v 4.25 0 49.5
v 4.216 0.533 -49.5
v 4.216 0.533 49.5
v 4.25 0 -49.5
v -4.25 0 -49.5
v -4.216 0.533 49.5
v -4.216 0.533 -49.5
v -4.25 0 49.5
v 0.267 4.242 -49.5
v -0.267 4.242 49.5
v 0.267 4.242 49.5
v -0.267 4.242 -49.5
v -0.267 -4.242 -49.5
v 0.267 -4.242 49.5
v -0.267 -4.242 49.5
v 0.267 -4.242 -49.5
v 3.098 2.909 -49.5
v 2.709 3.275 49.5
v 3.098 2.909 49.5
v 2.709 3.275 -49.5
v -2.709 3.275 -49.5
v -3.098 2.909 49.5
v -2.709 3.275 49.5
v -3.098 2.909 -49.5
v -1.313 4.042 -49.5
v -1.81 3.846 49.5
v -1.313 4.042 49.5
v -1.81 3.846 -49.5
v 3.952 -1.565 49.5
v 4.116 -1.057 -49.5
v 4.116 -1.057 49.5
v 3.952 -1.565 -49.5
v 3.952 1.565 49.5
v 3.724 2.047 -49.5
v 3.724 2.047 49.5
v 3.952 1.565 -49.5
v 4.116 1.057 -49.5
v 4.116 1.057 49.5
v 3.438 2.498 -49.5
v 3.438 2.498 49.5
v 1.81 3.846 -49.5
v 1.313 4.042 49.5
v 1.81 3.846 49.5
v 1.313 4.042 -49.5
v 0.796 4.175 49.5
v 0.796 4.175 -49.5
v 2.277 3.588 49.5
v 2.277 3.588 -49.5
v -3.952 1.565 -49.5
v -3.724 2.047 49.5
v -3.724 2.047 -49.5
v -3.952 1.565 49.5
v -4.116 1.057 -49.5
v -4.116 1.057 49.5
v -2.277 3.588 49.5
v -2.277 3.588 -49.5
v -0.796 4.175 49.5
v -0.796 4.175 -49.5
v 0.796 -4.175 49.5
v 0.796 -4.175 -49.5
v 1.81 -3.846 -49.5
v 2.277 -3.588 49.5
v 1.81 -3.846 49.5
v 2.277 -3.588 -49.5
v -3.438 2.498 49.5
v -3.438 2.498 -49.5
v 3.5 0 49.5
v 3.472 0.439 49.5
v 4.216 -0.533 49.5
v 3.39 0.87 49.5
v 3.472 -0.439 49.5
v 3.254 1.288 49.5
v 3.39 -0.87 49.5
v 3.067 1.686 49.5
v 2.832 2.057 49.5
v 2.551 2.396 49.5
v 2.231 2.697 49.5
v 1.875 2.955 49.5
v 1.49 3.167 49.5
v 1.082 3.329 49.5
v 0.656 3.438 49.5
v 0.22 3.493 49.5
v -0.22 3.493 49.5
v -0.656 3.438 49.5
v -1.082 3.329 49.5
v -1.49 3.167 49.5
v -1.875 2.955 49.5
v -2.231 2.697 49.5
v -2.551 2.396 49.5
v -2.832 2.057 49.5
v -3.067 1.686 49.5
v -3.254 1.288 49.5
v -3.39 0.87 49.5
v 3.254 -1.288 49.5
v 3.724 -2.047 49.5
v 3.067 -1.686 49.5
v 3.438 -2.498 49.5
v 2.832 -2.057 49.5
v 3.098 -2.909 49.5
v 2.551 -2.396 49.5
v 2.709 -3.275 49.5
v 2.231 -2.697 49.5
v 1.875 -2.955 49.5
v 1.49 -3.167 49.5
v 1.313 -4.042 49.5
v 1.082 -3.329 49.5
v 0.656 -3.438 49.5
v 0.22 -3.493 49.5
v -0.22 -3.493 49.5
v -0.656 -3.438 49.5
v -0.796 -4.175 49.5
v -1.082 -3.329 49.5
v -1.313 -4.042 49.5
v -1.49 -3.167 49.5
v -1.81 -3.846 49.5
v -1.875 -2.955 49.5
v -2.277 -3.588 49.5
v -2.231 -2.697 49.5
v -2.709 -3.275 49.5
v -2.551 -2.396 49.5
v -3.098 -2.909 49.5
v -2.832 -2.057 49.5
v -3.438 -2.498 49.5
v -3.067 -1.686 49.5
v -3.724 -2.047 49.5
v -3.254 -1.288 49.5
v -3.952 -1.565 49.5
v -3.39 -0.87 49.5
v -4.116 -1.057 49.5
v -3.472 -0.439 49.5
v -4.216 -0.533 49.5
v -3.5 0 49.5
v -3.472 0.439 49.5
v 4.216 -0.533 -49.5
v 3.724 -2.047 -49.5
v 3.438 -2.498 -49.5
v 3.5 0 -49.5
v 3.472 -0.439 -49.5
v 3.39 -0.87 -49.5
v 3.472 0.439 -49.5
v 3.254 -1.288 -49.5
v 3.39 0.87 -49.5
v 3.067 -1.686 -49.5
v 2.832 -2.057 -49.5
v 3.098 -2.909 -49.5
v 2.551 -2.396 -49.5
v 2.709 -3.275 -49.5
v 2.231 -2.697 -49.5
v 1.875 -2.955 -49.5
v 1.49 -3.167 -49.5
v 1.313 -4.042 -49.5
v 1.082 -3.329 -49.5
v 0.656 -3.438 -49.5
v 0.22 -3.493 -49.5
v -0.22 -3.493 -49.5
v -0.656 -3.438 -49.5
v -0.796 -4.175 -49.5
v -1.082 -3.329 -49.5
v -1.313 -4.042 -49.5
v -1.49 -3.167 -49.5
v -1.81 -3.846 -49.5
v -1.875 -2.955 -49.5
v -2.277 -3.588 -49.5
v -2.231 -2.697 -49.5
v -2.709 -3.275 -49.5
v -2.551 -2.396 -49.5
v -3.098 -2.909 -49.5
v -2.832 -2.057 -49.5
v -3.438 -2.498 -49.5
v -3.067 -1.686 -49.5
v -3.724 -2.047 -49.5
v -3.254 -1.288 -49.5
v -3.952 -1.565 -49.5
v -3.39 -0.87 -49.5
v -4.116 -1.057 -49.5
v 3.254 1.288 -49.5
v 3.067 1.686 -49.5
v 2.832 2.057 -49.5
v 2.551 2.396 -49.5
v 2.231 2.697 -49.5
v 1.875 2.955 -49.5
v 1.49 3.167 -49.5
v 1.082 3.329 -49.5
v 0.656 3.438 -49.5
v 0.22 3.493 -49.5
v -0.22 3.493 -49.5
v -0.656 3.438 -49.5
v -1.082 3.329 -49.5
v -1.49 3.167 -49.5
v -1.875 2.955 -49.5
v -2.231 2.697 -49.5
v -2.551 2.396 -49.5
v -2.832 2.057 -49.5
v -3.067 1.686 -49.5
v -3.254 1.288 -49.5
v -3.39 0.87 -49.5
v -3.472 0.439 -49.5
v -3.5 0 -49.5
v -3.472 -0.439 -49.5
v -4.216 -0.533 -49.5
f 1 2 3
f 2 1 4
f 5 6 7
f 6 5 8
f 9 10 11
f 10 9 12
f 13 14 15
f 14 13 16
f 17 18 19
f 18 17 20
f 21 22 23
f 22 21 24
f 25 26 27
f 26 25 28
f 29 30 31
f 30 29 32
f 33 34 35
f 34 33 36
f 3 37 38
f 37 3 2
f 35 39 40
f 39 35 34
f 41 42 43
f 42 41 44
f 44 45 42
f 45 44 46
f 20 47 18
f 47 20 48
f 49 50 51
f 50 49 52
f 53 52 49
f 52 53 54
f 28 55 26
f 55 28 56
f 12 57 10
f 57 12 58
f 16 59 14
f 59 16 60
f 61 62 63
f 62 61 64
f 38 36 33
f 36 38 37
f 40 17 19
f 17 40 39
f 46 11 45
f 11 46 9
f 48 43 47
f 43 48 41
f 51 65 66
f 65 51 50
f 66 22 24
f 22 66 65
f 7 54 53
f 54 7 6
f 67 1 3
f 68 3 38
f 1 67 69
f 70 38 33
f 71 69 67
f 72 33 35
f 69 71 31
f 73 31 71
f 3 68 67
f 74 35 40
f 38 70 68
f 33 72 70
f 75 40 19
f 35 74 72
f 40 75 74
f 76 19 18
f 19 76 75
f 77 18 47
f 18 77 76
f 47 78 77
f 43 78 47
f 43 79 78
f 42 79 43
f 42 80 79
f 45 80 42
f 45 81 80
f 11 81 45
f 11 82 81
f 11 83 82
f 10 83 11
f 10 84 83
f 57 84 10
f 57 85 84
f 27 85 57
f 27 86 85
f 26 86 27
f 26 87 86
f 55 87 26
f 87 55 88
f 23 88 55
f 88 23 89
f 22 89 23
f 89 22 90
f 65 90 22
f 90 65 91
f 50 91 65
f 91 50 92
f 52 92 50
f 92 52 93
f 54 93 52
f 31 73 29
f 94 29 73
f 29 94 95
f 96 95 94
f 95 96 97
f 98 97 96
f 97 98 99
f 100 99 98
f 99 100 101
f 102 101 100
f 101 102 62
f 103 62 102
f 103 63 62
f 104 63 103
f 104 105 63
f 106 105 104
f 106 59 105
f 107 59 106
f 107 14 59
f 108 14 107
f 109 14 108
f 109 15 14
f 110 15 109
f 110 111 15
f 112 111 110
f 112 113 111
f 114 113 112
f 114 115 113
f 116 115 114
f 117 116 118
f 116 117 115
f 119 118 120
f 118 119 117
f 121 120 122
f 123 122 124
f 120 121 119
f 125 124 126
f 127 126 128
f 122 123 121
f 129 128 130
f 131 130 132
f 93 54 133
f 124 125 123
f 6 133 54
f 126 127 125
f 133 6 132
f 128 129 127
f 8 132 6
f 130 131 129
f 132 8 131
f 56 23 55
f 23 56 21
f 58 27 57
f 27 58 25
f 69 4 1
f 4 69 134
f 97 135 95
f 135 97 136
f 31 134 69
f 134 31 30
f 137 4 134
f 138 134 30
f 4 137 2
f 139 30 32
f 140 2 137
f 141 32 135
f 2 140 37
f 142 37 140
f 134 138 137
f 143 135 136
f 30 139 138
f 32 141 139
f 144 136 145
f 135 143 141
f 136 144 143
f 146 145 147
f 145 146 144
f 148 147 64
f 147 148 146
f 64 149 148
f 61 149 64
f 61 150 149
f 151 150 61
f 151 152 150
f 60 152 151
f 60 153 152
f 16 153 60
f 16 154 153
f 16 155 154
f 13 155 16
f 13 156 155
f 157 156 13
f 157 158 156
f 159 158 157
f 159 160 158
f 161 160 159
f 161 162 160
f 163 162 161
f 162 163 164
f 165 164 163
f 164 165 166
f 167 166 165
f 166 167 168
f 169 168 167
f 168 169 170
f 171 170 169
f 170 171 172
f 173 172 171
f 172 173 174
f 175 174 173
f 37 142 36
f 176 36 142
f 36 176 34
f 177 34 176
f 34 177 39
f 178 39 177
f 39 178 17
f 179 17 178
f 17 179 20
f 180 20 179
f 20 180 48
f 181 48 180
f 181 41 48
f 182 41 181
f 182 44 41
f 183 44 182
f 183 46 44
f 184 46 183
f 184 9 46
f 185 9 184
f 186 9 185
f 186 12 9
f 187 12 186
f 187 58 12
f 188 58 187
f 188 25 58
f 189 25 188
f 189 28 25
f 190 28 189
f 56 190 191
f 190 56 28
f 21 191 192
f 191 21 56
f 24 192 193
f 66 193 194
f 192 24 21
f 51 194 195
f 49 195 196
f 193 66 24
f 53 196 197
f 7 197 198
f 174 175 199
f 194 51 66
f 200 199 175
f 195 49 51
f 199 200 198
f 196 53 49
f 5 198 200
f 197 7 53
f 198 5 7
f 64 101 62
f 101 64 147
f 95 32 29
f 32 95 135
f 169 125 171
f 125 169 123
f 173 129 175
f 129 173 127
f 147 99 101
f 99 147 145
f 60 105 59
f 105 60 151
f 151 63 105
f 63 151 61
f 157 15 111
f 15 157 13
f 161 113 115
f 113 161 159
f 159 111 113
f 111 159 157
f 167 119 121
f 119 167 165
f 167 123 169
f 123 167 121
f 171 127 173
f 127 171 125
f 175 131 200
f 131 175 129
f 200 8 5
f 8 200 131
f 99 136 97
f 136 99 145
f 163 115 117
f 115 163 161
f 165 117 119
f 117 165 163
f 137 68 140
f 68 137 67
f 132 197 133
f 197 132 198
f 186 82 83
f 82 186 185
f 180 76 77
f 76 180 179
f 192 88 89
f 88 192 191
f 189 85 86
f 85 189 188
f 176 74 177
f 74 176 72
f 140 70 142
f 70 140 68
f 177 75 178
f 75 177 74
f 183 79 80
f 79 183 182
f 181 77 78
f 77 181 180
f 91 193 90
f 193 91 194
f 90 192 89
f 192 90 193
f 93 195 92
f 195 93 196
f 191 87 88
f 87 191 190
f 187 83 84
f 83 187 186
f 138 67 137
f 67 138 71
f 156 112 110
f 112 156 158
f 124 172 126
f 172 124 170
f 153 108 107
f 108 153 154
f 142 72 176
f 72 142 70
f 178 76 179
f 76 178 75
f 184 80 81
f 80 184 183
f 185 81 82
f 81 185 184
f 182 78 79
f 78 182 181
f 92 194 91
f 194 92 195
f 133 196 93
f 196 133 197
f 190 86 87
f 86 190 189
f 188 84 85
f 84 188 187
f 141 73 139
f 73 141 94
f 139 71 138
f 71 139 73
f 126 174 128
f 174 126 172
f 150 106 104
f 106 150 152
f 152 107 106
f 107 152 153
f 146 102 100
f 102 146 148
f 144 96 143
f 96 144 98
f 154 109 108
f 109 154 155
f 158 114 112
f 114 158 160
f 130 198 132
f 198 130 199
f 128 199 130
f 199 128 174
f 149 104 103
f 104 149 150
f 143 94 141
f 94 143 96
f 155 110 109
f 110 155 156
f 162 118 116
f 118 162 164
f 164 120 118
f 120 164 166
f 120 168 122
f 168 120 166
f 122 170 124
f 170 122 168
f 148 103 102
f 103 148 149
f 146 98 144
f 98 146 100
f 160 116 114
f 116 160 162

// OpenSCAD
$fn = 50;


difference() {
	union() {
		translate(v = [0, 0, -49.5000000000]) {
			cylinder(h = 99, r = 4.2500000000);
		}
	}
	union() {
		translate(v = [0, 0, -100.0000000000]) {
			cylinder(h = 200, r = 3.5000000000);
		}
	}
}
